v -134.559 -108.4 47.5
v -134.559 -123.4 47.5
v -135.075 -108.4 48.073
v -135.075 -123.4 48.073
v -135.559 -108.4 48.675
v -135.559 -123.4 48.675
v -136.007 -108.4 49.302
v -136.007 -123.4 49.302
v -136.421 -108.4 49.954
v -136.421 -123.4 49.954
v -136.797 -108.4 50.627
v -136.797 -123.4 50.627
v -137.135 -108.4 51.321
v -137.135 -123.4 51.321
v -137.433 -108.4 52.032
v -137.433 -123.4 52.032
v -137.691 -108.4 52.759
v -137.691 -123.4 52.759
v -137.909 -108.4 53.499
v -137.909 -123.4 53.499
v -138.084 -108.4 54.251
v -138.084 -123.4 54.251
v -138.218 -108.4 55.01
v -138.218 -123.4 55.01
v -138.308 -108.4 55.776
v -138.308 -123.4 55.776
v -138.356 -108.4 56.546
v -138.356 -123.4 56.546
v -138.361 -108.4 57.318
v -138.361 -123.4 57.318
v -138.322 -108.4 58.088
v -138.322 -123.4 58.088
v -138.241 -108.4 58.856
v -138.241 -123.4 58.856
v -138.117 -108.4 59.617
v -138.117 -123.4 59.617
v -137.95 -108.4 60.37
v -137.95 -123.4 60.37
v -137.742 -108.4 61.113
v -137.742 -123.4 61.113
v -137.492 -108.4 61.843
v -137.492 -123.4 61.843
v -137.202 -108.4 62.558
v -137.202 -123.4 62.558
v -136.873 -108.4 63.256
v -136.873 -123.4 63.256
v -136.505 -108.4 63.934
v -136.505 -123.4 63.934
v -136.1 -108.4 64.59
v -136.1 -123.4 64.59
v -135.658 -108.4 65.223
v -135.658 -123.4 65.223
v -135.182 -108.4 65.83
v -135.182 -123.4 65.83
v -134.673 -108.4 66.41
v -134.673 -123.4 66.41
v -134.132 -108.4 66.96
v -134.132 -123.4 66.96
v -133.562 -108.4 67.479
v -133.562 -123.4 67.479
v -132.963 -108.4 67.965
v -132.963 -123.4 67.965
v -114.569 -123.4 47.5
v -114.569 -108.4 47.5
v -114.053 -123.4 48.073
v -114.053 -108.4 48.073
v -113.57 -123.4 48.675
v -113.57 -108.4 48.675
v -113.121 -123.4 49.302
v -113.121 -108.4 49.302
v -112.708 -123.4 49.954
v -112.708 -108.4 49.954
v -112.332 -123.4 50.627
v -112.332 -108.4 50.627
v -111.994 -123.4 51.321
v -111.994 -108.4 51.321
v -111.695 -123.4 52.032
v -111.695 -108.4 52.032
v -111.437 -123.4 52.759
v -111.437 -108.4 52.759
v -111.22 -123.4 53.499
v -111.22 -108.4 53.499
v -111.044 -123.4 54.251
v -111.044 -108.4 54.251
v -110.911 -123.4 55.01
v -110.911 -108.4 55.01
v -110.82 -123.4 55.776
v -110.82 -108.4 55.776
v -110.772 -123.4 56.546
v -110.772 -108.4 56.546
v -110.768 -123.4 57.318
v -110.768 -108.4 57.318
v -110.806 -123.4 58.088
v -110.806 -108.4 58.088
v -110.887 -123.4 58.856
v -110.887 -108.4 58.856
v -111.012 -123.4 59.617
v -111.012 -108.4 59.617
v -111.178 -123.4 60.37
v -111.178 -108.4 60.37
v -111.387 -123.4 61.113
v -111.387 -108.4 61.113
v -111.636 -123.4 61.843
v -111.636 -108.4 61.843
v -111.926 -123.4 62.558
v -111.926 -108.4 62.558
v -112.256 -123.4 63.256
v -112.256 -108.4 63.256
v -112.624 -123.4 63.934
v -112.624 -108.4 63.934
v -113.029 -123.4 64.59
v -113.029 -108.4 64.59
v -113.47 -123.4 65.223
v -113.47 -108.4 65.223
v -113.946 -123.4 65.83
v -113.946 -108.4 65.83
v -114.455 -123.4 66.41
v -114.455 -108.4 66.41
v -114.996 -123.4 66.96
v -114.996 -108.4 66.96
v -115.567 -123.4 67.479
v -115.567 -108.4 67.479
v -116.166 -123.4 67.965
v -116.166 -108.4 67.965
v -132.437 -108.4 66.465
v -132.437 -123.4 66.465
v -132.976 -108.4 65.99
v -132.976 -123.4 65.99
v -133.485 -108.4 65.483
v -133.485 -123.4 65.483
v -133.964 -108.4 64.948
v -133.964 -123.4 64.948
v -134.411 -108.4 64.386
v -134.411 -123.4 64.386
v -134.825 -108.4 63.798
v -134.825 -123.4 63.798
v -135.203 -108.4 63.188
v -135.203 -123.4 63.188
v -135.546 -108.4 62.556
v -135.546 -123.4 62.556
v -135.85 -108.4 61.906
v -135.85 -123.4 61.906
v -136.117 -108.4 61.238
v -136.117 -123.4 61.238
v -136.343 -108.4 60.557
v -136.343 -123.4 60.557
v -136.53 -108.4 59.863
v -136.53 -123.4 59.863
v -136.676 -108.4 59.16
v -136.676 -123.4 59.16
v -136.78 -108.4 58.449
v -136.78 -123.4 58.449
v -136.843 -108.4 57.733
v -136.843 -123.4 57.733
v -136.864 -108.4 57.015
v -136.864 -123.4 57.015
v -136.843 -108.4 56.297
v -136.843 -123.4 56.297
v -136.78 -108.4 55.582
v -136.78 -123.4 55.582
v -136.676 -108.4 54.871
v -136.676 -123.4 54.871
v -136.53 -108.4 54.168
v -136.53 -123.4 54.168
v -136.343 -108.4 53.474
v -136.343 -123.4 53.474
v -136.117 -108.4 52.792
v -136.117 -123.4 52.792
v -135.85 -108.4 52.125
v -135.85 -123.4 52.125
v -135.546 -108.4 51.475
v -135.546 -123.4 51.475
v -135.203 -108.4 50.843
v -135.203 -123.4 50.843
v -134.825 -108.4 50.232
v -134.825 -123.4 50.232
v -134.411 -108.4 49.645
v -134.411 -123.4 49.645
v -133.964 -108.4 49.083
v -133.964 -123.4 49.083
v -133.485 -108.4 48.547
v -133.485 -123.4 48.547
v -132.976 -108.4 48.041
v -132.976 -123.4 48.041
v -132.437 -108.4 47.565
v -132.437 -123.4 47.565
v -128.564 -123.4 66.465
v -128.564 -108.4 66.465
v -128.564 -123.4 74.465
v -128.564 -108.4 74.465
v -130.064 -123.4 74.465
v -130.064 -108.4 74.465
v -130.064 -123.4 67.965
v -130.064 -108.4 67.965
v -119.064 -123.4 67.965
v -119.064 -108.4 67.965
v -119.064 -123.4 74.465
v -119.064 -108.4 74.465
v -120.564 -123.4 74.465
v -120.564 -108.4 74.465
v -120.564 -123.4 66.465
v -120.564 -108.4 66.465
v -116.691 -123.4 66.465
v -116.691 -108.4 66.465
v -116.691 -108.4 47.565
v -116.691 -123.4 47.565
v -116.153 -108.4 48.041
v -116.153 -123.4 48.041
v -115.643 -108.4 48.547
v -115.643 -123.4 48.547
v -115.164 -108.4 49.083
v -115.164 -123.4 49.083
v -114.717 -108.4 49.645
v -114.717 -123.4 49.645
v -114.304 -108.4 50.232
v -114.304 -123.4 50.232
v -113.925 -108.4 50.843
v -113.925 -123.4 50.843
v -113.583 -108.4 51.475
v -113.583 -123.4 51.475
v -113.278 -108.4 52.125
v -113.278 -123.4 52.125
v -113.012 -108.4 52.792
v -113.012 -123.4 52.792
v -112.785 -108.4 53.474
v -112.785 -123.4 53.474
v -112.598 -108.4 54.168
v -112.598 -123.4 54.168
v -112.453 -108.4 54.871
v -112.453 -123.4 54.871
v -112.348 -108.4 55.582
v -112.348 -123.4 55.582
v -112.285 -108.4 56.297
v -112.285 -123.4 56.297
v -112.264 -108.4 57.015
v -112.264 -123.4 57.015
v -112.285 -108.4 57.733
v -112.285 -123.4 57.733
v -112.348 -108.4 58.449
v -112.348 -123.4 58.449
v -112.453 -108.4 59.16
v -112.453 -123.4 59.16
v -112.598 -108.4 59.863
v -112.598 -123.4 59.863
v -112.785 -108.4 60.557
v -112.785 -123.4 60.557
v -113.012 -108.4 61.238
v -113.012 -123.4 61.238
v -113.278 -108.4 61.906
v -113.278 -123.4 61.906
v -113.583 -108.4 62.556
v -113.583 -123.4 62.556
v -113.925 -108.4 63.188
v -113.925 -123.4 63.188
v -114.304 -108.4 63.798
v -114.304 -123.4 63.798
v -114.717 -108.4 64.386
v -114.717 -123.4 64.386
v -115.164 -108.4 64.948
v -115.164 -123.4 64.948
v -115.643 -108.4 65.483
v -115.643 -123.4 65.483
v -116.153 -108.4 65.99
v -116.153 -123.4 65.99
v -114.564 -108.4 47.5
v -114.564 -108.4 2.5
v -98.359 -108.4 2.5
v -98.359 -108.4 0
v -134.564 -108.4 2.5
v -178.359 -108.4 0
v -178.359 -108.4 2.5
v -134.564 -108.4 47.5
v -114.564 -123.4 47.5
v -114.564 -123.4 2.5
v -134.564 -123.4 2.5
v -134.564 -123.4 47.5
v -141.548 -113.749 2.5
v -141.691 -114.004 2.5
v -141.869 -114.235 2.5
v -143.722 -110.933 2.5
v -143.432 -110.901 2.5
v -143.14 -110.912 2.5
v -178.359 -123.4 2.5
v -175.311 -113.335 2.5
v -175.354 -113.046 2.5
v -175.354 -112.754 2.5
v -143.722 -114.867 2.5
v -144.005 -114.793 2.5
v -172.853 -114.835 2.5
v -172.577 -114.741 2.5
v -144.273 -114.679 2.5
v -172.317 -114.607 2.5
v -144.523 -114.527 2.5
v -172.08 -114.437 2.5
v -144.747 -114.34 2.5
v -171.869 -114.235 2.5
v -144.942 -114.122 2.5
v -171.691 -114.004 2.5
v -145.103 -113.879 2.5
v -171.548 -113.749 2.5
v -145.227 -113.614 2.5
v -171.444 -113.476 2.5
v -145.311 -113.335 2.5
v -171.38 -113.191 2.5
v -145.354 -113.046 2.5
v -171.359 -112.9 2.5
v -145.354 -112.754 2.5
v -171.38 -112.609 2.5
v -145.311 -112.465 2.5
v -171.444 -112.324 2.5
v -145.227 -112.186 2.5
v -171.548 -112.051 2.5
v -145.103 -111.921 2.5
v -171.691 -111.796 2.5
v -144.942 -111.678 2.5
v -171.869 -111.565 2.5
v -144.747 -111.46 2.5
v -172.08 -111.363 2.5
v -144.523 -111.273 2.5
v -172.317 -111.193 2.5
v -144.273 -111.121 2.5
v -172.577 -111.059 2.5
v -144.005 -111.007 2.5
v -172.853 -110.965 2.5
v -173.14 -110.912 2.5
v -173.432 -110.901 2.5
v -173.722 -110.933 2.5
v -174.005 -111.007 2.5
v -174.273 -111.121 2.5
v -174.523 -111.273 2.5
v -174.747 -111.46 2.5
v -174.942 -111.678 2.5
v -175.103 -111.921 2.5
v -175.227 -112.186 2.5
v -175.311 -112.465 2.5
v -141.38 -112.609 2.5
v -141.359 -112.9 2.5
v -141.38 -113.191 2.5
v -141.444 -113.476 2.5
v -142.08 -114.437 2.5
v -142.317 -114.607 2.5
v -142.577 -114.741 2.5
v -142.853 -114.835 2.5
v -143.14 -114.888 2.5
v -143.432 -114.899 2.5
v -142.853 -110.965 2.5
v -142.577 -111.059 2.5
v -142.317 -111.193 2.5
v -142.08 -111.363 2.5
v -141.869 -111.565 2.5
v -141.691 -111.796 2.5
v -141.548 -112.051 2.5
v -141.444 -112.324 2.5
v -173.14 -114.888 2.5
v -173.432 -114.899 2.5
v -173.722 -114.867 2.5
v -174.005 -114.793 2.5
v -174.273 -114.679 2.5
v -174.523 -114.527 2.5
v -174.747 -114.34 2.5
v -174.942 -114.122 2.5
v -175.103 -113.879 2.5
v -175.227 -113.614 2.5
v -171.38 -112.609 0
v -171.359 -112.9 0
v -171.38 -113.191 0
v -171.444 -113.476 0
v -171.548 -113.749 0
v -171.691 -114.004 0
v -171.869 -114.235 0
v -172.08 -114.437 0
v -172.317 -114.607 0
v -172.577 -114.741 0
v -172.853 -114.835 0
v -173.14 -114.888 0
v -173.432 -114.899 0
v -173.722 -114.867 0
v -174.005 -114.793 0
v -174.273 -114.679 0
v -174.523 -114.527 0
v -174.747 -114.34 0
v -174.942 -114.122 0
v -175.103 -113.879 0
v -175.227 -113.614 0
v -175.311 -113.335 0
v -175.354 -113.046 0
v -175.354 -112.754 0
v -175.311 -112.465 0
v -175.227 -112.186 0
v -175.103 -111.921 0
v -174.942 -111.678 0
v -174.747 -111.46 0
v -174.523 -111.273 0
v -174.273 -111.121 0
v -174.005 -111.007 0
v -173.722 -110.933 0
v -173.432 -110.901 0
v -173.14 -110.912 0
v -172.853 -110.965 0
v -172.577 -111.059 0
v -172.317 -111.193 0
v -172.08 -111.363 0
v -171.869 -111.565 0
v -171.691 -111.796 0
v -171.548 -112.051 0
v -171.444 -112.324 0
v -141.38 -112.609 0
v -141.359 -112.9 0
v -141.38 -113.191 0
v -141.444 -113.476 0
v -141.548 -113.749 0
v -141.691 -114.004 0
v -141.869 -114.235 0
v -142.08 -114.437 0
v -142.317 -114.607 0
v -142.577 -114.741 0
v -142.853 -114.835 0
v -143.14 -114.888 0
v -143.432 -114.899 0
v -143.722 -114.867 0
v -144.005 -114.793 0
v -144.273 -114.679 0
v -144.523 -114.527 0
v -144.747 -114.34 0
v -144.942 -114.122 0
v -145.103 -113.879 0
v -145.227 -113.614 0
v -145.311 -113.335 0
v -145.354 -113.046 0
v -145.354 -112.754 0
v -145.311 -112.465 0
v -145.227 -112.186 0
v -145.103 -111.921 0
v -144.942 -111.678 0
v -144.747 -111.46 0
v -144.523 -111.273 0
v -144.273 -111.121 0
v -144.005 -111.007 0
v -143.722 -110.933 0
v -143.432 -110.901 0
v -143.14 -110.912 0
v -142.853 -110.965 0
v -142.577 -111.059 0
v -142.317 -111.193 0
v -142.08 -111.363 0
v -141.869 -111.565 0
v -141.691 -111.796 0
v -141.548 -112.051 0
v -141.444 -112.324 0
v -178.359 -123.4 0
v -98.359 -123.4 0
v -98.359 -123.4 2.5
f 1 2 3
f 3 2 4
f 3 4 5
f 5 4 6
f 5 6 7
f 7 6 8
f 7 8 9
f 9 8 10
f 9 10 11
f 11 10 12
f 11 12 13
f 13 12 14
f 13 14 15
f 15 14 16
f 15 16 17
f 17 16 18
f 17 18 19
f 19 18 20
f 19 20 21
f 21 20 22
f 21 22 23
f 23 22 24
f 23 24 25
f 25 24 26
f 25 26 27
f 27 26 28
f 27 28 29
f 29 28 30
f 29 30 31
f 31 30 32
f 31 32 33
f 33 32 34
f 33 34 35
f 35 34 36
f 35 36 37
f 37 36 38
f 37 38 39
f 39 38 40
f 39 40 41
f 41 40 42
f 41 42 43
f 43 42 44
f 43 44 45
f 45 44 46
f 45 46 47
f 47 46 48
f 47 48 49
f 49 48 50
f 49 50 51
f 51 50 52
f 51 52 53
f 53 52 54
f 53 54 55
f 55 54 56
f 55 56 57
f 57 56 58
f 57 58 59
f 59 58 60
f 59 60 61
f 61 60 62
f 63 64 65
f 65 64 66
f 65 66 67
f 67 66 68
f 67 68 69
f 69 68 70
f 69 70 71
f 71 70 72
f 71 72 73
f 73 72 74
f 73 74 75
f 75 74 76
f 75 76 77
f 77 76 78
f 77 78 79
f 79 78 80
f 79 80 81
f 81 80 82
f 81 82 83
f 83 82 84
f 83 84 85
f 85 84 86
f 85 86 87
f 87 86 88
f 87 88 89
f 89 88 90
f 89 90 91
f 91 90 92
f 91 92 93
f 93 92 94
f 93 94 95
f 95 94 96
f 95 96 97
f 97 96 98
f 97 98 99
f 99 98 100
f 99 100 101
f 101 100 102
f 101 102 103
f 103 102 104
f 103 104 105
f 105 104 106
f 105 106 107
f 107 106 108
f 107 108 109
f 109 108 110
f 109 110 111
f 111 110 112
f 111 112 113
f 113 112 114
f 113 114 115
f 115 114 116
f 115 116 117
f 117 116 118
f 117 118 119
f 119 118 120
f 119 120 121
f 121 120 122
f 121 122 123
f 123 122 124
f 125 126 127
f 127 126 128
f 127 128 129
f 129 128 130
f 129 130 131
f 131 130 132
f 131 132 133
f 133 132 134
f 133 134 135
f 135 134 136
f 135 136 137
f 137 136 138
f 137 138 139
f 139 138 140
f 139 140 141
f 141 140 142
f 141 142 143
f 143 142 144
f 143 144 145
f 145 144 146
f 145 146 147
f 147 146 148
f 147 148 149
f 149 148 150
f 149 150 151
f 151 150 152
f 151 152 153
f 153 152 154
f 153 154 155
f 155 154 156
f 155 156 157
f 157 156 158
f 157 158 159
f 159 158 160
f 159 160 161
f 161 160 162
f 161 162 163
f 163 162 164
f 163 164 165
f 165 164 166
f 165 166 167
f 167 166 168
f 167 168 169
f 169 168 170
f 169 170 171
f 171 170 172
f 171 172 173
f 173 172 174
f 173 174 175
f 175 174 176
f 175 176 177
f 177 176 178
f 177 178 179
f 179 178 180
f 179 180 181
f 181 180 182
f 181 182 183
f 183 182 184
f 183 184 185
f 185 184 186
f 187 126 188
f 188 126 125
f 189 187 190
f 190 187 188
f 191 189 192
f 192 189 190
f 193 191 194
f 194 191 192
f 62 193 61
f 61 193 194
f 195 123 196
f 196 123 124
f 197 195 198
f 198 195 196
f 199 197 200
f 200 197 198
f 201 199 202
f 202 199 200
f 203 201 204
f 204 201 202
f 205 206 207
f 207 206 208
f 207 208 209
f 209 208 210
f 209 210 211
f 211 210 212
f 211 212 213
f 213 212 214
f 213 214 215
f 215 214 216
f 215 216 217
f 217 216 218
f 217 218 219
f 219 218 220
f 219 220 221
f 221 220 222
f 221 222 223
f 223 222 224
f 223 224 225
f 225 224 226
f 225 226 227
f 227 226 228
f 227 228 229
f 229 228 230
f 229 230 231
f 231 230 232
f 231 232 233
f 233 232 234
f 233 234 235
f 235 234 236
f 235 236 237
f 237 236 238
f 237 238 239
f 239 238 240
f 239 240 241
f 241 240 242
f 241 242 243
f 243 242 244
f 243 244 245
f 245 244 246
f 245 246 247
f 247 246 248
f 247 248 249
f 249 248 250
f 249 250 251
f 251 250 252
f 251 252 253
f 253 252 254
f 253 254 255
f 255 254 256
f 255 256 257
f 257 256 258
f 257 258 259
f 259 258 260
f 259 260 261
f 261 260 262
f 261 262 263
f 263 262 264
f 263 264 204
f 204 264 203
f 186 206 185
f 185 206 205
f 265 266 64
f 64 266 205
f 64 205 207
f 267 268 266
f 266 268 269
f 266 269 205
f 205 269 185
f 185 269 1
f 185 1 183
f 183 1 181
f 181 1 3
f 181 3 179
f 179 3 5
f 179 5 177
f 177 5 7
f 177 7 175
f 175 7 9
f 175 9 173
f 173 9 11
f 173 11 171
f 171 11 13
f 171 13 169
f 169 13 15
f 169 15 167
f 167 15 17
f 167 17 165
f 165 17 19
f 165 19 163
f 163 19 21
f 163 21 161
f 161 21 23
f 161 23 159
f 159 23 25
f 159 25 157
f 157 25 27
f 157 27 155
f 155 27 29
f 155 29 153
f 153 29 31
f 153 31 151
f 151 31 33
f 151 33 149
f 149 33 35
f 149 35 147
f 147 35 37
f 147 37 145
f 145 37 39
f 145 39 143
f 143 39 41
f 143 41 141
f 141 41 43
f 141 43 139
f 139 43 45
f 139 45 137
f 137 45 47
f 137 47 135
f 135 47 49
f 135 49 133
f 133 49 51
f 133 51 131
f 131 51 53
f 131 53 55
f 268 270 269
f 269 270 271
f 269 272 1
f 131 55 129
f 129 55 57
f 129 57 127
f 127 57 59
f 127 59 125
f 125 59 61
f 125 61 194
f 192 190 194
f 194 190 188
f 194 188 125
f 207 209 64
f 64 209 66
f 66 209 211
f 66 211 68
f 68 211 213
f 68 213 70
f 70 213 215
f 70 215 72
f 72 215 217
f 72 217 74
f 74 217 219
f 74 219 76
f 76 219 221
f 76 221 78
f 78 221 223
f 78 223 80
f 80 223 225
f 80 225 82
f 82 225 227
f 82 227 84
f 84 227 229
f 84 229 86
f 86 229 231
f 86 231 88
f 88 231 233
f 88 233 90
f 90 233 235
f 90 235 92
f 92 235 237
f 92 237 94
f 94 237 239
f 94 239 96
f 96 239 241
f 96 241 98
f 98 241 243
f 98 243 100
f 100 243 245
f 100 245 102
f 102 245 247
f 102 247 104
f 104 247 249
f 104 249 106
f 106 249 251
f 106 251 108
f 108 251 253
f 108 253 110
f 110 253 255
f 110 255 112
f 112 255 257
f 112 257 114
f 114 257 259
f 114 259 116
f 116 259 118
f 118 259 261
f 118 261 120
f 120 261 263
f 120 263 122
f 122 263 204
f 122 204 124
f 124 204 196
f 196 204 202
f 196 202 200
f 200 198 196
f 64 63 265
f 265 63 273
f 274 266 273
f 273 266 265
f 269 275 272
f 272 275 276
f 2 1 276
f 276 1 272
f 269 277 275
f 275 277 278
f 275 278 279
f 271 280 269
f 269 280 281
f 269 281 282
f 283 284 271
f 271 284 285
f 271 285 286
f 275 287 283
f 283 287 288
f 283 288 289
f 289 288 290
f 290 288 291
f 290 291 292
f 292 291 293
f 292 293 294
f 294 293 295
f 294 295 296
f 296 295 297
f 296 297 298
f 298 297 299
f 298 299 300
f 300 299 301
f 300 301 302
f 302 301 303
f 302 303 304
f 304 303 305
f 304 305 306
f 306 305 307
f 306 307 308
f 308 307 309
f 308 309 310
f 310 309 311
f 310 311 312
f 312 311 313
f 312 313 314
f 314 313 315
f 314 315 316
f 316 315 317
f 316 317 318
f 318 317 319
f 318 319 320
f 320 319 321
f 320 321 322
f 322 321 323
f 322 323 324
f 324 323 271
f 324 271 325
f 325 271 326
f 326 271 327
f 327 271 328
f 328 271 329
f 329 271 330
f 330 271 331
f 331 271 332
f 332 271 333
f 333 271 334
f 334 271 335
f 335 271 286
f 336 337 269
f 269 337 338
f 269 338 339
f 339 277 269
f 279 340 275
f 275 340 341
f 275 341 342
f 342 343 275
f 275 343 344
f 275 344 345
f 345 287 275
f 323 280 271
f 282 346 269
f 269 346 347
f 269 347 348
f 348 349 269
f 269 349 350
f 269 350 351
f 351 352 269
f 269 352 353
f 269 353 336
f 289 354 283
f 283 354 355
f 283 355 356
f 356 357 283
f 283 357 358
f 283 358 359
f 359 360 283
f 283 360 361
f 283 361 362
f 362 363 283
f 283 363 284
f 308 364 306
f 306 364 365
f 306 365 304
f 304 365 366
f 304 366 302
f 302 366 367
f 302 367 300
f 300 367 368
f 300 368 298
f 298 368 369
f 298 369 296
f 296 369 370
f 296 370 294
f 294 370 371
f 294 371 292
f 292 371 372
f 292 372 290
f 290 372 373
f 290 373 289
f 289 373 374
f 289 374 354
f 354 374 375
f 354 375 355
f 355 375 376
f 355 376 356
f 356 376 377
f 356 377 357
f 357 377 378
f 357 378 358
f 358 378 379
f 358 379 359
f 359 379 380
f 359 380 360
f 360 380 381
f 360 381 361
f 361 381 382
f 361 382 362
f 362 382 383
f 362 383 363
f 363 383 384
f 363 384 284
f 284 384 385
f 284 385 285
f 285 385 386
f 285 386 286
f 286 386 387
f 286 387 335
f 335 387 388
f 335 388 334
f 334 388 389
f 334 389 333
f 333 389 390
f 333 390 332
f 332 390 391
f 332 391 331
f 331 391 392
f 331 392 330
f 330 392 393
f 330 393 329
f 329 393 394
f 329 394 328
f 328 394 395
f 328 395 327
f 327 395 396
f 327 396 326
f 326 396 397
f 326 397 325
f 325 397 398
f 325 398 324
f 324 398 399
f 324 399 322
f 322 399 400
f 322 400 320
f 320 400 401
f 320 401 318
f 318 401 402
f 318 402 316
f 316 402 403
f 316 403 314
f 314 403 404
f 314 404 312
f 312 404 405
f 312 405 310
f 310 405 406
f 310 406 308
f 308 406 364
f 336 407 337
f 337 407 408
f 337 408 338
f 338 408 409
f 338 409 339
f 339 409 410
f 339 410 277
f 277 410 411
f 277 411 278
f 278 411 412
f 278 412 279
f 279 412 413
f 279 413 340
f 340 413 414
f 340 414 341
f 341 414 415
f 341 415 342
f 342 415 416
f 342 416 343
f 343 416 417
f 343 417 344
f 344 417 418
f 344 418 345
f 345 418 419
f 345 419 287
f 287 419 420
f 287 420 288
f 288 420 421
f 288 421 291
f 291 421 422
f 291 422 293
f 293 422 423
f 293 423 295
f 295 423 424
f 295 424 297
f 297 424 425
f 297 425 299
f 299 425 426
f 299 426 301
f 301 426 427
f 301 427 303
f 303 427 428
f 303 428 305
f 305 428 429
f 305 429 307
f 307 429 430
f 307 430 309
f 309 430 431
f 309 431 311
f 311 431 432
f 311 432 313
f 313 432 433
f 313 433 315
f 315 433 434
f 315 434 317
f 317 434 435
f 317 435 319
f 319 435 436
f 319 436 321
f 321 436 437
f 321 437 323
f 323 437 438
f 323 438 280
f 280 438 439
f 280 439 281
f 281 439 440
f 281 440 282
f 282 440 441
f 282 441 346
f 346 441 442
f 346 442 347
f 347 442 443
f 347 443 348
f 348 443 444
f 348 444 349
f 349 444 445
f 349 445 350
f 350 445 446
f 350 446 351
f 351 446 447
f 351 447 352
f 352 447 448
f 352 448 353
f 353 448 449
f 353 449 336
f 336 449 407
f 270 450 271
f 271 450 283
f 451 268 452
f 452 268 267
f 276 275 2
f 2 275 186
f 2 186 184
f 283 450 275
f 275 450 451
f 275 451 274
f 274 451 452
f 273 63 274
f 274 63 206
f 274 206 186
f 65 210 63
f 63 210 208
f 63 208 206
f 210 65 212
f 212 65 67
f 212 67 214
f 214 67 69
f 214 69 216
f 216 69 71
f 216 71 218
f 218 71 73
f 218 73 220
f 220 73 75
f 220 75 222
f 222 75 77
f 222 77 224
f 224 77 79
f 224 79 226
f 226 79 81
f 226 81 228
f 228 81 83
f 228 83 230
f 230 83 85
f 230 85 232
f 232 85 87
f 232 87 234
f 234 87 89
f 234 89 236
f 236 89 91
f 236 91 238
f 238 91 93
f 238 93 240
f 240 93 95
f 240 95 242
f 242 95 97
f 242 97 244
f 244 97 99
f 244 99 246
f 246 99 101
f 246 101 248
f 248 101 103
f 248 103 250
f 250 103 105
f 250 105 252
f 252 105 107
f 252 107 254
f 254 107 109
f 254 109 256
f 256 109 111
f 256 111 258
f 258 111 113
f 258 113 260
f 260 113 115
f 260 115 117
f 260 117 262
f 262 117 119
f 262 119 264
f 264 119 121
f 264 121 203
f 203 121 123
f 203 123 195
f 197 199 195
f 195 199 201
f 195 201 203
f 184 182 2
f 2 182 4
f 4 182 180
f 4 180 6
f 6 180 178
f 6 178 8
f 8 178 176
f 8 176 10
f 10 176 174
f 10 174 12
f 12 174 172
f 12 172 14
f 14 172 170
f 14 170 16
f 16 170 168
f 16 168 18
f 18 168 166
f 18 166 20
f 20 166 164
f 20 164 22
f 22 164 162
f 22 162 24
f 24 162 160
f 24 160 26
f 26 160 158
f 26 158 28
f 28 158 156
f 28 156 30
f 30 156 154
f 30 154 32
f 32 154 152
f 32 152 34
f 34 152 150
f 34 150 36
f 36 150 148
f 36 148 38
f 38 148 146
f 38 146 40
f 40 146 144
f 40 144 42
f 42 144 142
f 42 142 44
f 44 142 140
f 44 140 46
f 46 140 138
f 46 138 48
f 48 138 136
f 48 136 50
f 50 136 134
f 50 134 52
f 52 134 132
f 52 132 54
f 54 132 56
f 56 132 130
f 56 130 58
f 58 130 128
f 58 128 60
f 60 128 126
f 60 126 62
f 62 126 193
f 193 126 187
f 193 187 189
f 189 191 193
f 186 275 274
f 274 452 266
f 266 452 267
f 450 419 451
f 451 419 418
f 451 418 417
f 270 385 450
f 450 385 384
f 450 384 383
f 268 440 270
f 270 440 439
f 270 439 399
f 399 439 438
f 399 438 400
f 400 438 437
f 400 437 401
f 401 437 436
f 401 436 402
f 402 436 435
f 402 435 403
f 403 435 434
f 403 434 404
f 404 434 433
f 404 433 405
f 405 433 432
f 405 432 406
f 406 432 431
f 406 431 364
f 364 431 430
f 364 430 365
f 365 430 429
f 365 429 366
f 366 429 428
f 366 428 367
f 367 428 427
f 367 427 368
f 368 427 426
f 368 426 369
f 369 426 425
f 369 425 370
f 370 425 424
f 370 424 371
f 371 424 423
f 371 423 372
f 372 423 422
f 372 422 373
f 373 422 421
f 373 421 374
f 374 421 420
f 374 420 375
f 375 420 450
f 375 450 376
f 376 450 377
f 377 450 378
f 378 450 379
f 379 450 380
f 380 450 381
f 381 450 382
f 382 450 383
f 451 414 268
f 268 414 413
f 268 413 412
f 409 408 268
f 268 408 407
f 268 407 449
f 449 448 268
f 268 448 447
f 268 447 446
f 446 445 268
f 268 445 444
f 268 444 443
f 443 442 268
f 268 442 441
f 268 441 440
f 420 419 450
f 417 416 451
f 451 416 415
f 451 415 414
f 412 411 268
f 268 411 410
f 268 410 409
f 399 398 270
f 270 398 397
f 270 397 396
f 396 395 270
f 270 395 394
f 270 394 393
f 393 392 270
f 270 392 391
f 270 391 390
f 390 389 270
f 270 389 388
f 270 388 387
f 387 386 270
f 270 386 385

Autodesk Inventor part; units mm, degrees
ref_plane "YZ Plane" through (0, 0, 0) normal (1, 0, 0) x (0, 1, 0)
ref_plane "XZ Plane" through (0, 0, 0) normal (0, 1, 0) x (-1, 0, 0)
ref_plane "XY Plane" through (0, 0, 0) normal (0, 0, 1) x (1, 0, 0)
sketch "Sketch1" plane through (0, 0, 0) normal (0, 0, 1) x (1, 0, 0)
  circle A0 centre (-173.3589, -112.9) radius 2 projected
  circle A1 centre (-143.3589, -112.9) radius 2 projected
  circle A2 centre (-173.3589, -112.9) radius 2
  circle A3 centre (-143.3589, -112.9) radius 2
  line L0 (-178.3589, -108.4) -> (-98.3589, -108.4)
  line L1 (-98.3589, -108.4) -> (-98.3589, -123.4)
  line L2 (-98.3589, -123.4) -> (-178.3589, -123.4)
  line L3 (-178.3589, -123.4) -> (-178.3589, -108.4)
  point P0 (0, 0)
  dimension "d0" = 4
  dimension "d1" = 4
  dimension "d2" = 15
  dimension "d3" = 80
  dimension "d4" = 4.5
  dimension "d5" = 5
extrude "Extrusion1" add sketch "Sketch1" along normal blind 2.5
sketch "Sketch2" plane through (0, 0, 2.5) normal (0, 0, 1) x (1, 0, 0)
  line L0 (-178.3589, -123.4) -> (-98.3589, -123.4) projected
  line L1 (-98.3589, -123.4) -> (-98.3589, -108.4) projected
  line L2 (-98.3589, -108.4) -> (-178.3589, -108.4) projected
  line L3 (-178.3589, -108.4) -> (-178.3589, -123.4) projected
  circle A0 centre (-143.3589, -112.9) radius 2 projected
  circle A1 centre (-173.3589, -112.9) radius 2 projected
  line L4 (-122.2642, -87.4) -> (-126.8642, -87.4) projected
  line L5 (-124.5642, -87.4) -> (-124.5642, -147.4431) construction
  line L6 (-124.5642, -115.9) -> (-114.5642, -115.9) construction
  line L7 (-98.3589, -108.4) -> (-178.3589, -108.4) projected
  line L8 (-114.5642, -115.9) -> (-114.5642, -123.4)
  line L9 (-114.5642, -115.9) -> (-114.5642, -108.4)
  line L10 (-134.5642, -115.9) -> (-134.5642, -123.4)
  line L11 (-134.5642, -115.9) -> (-134.5642, -108.4)
  line L12 (-114.5642, -123.4) -> (-134.5642, -123.4)
  line L13 (-178.3589, -123.4) -> (-98.3589, -123.4) projected
  line L14 (-114.5642, -108.4) -> (-134.5642, -108.4)
  point P0 (0, 0)
  point P1 (-112.4142, -124.5353)
  point P2 (-112.4142, -107.2647)
  dimension "d8" = 10
extrude "Extrusion2" add sketch "Sketch2" along normal blind 45 contours L10 L11 L2 L9 L8 L0
sketch "Sketch3" plane through (-178.3589, -123.4, 0) normal (0, -1, 0) x (1, 0, 0)
  circle A0 centre (53.7947, 57.0153) radius 2.3 construction
  line L0 (53.7947, 57.0153) -> (53.7947, 47.7653) construction
  line L1 (53.7947, 57.0153) -> (65.8947, 57.0153) construction
  line L2 (53.7947, 47.7653) -> (61.5952, 47.7653) construction
  line L3 (53.7947, 47.7653) -> (45.9942, 47.7653) construction
  line L4 (53.7947, 66.2653) -> (61.5952, 66.2653) construction
  line L5 (53.7947, 66.2653) -> (45.9942, 66.2653) construction
  arc A1 (45.9942, 66.2653) -> (45.9942, 47.7653) centre (53.7947, 57.0153) ccw construction
  arc A2 (61.5952, 47.7653) -> (61.5952, 66.2653) centre (53.7947, 57.0153) ccw construction
  line L6 (61.6679, 66.4653) -> (53.9215, 66.4653)
  line L7 (53.9215, 66.4653) -> (45.9215, 66.4653)
  arc A3 (45.9215, 66.4653) -> (45.9215, 47.5653) centre (53.7947, 57.0153) ccw
  line L8 (45.9215, 47.5653) -> (53.7947, 47.5653)
  line L9 (53.7947, 47.5653) -> (61.6679, 47.5653)
  arc A4 (61.6679, 47.5653) -> (61.6679, 66.4653) centre (53.7947, 57.0153) ccw
  line L10 (62.1934, 67.9653) -> (59.2947, 67.9653)
  arc A5 (45.396, 67.9653) -> (45.396, 46.0653) centre (53.7947, 57.0153) ccw
  line L11 (45.396, 46.0653) -> (53.7947, 46.0653)
  line L12 (53.7947, 46.0653) -> (62.1934, 46.0653)
  arc A6 (62.1934, 46.0653) -> (62.1934, 67.9653) centre (53.7947, 57.0153) ccw
  line L13 (57.7947, 66.4653) -> (57.7947, 74.4653)
  line L14 (49.7947, 66.4653) -> (49.7947, 74.4653)
  line L15 (59.2947, 67.9653) -> (59.2947, 74.4653)
  line L16 (48.2947, 67.9653) -> (48.2947, 74.4653)
  line L17 (48.2947, 74.4653) -> (49.7947, 74.4653)
  line L18 (57.7947, 74.4653) -> (59.2947, 74.4653)
  line L19 (48.2947, 67.9653) -> (45.396, 67.9653)
  point P0 (178.3589, 0)
  dimension "d11" = 9.25
  dimension "d12" = 12.1
  dimension "d13" = 0.2
  dimension "d14" = 1.5
  dimension "d15" = 8
  dimension "d16" = 4
  dimension "d17" = 1.5
  dimension "d18" = 1.5
extrude "Extrusion3" add sketch "Sketch3" against normal blind 15 contours L6 L13 L18 L15 L10 A6 L12 L11 A5 L19 L16 L17 L14 L7 A3 L8 L9 A4
properties part number "sujetador_motor"
